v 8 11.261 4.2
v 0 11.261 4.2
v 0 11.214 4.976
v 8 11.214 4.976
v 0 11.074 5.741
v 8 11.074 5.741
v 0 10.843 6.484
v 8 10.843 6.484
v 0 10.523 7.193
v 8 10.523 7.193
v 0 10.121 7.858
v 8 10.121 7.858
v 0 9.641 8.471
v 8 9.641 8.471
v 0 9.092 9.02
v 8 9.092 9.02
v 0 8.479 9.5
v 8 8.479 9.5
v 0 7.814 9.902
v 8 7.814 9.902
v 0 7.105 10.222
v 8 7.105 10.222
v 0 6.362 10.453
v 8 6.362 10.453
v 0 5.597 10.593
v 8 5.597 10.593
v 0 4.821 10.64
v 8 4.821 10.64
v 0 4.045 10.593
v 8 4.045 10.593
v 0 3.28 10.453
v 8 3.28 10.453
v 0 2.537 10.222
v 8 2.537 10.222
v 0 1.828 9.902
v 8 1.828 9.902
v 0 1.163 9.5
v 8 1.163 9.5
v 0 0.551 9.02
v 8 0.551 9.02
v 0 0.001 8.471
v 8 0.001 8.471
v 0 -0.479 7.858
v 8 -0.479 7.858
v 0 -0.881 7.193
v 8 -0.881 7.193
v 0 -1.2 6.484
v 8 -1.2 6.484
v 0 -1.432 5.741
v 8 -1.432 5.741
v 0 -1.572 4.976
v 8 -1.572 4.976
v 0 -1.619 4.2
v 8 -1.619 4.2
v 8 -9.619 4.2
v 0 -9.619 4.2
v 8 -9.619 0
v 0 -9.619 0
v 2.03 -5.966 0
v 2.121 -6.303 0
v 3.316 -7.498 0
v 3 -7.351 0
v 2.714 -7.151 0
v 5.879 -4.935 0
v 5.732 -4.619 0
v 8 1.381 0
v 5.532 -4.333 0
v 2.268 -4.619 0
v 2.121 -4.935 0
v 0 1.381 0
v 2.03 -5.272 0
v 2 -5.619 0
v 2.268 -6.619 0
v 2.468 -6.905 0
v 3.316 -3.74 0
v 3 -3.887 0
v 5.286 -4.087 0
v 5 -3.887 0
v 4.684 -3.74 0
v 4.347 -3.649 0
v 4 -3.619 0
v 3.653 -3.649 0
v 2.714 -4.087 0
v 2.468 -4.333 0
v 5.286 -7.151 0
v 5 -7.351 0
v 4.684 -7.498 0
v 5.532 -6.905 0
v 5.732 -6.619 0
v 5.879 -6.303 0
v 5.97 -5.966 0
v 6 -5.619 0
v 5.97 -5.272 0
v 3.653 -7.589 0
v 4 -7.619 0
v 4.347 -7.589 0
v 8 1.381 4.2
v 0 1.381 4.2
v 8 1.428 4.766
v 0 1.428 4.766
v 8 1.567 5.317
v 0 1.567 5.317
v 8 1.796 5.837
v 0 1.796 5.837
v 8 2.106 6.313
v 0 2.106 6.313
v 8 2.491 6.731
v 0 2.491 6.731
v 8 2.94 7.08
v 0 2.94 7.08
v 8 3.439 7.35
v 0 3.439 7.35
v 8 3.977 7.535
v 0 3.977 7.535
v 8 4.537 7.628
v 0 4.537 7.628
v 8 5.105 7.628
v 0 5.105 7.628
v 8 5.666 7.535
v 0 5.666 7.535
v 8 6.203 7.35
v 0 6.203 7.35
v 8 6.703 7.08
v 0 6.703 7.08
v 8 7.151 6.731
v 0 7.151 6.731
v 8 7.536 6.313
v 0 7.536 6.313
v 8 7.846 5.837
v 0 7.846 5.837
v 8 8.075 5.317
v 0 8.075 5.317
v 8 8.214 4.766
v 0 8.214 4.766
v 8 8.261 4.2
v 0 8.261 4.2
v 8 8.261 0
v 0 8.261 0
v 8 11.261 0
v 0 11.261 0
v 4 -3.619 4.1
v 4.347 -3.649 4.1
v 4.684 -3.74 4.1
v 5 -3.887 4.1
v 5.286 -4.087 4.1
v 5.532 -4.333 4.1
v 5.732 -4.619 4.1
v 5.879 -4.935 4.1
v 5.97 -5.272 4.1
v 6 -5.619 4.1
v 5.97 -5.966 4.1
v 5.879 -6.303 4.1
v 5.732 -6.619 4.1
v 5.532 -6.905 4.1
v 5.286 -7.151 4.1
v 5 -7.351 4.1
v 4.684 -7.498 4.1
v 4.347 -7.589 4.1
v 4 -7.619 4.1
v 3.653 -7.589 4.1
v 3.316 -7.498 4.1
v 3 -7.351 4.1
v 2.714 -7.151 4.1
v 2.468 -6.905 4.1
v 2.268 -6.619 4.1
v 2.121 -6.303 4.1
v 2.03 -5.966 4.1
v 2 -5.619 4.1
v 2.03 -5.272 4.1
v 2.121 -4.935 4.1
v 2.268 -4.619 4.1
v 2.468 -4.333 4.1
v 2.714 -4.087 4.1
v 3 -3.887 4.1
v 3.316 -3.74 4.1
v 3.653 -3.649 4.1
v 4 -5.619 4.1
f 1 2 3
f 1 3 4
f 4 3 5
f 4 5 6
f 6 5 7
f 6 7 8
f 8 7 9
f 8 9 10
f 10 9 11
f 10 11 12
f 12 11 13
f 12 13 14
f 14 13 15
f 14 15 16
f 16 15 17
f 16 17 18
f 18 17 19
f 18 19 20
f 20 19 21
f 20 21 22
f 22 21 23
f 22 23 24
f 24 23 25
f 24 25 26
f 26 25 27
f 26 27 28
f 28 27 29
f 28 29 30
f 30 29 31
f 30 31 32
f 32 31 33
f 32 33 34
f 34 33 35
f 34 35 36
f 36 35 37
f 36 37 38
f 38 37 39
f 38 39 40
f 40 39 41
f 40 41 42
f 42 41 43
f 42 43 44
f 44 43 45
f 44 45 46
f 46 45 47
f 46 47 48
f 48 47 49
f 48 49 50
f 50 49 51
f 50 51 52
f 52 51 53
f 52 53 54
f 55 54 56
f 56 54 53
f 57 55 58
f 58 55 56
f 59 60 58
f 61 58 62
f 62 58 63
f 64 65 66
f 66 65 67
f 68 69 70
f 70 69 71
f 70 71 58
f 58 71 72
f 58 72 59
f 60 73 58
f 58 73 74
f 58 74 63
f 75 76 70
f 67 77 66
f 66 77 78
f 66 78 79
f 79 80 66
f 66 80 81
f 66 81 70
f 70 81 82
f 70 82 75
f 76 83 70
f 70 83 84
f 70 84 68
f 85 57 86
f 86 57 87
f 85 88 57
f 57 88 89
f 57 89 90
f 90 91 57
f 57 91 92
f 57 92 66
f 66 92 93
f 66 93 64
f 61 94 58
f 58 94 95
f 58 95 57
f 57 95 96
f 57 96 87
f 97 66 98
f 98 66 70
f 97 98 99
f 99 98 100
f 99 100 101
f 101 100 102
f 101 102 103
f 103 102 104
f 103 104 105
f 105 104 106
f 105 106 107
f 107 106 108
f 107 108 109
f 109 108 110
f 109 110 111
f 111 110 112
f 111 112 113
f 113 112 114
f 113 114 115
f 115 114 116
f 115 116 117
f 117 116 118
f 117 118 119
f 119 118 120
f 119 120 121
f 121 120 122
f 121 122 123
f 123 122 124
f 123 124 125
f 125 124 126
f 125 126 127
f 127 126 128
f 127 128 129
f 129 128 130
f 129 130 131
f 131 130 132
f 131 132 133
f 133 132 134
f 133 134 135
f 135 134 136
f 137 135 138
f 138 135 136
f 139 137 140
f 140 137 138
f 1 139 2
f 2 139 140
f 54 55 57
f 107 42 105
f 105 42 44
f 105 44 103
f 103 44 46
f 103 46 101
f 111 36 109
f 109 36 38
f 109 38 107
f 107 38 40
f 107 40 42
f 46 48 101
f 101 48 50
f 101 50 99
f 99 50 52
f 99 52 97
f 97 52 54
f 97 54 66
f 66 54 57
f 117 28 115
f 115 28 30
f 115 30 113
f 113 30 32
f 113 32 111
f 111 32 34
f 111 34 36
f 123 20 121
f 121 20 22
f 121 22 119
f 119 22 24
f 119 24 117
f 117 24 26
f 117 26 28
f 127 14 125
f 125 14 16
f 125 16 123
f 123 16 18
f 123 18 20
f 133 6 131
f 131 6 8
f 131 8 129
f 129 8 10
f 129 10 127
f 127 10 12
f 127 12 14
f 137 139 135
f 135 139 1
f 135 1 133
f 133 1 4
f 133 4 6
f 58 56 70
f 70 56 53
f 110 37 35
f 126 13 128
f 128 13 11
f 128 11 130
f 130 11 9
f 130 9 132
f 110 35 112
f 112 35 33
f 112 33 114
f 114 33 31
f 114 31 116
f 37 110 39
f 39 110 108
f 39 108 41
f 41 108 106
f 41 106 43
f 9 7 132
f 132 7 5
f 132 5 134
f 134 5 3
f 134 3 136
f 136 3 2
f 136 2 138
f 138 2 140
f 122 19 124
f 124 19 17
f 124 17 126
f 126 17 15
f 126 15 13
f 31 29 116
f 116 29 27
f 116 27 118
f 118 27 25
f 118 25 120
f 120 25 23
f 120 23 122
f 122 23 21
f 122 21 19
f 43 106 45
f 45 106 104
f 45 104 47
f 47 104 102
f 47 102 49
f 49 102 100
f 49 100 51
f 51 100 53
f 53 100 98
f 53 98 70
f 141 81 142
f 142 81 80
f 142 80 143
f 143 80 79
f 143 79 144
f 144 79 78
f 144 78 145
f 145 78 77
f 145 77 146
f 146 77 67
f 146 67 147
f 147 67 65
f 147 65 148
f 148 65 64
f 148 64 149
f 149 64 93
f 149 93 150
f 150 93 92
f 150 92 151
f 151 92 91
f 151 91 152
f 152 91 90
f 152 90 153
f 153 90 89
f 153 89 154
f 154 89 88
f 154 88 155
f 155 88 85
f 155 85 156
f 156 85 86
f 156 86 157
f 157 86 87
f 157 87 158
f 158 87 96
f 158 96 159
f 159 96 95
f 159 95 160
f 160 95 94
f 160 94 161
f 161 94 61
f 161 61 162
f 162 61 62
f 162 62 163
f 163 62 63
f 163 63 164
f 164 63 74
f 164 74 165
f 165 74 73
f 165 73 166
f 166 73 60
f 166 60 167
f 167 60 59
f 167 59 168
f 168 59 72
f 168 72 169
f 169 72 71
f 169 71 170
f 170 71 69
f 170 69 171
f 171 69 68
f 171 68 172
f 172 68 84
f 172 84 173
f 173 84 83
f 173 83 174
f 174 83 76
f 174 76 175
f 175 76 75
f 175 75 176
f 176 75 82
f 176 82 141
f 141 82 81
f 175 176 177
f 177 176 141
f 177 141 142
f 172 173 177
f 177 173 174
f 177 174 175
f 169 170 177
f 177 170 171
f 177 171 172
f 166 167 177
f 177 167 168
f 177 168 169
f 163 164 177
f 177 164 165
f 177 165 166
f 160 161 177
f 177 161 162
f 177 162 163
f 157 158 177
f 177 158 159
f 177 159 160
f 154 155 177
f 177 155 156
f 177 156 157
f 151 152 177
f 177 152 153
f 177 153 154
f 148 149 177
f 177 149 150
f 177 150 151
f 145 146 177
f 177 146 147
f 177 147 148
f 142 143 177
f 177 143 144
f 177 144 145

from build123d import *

# Parameters (mm, degrees)
BOSS_EXTRUDE1_DEPTH              = 8
CLAMPMOUNTHOLESKETCH2_R          = 2
CLAMPMOUNTHOLECUT_EXTRUDE1_DEPTH = 4.1


with BuildPart() as part:
    # Sketch1 → Boss-Extrude1 (new body)
    with BuildSketch(Plane(origin=(0, 0, 0), x_dir=(0, 0, -1), z_dir=(1, 0, 0))):
        with BuildLine():
            Line((0, 1.381049961), (0, -9.618950039))
            Line((0, -9.618950039), (-4.2, -9.618950039))
            Line((-4.2, -9.618950039), (-4.2, -1.618950039))
            ThreePointArc((-4.2, -1.618950039), (-10.64, 4.821049961), (-4.2, 11.261049961))
            Line((-4.2, 11.261049961), (0, 11.261049961))
            Line((0, 11.261049961), (0, 8.261049961))
            Line((0, 8.261049961), (-4.2, 8.261049961))
            ThreePointArc((-4.2, 8.261049961), (-7.64, 4.821049961), (-4.2, 1.381049961))
            Line((-4.2, 1.381049961), (0, 1.381049961))
        make_face()
    extrude(amount=BOSS_EXTRUDE1_DEPTH)

    # ClampMountHoleSketch2 → ClampMountHoleCut-Extrude1 (cut)
    with BuildSketch(Plane(origin=(0, 0, 0), x_dir=(-1, 0, 0), z_dir=(0, 0, -1))):
        with Locations(Location((-4, -5.618950039, 0), (0, 0, 90))):
            Circle(CLAMPMOUNTHOLESKETCH2_R)
    extrude(amount=-CLAMPMOUNTHOLECUT_EXTRUDE1_DEPTH, mode=Mode.SUBTRACT)


solid = part.part
